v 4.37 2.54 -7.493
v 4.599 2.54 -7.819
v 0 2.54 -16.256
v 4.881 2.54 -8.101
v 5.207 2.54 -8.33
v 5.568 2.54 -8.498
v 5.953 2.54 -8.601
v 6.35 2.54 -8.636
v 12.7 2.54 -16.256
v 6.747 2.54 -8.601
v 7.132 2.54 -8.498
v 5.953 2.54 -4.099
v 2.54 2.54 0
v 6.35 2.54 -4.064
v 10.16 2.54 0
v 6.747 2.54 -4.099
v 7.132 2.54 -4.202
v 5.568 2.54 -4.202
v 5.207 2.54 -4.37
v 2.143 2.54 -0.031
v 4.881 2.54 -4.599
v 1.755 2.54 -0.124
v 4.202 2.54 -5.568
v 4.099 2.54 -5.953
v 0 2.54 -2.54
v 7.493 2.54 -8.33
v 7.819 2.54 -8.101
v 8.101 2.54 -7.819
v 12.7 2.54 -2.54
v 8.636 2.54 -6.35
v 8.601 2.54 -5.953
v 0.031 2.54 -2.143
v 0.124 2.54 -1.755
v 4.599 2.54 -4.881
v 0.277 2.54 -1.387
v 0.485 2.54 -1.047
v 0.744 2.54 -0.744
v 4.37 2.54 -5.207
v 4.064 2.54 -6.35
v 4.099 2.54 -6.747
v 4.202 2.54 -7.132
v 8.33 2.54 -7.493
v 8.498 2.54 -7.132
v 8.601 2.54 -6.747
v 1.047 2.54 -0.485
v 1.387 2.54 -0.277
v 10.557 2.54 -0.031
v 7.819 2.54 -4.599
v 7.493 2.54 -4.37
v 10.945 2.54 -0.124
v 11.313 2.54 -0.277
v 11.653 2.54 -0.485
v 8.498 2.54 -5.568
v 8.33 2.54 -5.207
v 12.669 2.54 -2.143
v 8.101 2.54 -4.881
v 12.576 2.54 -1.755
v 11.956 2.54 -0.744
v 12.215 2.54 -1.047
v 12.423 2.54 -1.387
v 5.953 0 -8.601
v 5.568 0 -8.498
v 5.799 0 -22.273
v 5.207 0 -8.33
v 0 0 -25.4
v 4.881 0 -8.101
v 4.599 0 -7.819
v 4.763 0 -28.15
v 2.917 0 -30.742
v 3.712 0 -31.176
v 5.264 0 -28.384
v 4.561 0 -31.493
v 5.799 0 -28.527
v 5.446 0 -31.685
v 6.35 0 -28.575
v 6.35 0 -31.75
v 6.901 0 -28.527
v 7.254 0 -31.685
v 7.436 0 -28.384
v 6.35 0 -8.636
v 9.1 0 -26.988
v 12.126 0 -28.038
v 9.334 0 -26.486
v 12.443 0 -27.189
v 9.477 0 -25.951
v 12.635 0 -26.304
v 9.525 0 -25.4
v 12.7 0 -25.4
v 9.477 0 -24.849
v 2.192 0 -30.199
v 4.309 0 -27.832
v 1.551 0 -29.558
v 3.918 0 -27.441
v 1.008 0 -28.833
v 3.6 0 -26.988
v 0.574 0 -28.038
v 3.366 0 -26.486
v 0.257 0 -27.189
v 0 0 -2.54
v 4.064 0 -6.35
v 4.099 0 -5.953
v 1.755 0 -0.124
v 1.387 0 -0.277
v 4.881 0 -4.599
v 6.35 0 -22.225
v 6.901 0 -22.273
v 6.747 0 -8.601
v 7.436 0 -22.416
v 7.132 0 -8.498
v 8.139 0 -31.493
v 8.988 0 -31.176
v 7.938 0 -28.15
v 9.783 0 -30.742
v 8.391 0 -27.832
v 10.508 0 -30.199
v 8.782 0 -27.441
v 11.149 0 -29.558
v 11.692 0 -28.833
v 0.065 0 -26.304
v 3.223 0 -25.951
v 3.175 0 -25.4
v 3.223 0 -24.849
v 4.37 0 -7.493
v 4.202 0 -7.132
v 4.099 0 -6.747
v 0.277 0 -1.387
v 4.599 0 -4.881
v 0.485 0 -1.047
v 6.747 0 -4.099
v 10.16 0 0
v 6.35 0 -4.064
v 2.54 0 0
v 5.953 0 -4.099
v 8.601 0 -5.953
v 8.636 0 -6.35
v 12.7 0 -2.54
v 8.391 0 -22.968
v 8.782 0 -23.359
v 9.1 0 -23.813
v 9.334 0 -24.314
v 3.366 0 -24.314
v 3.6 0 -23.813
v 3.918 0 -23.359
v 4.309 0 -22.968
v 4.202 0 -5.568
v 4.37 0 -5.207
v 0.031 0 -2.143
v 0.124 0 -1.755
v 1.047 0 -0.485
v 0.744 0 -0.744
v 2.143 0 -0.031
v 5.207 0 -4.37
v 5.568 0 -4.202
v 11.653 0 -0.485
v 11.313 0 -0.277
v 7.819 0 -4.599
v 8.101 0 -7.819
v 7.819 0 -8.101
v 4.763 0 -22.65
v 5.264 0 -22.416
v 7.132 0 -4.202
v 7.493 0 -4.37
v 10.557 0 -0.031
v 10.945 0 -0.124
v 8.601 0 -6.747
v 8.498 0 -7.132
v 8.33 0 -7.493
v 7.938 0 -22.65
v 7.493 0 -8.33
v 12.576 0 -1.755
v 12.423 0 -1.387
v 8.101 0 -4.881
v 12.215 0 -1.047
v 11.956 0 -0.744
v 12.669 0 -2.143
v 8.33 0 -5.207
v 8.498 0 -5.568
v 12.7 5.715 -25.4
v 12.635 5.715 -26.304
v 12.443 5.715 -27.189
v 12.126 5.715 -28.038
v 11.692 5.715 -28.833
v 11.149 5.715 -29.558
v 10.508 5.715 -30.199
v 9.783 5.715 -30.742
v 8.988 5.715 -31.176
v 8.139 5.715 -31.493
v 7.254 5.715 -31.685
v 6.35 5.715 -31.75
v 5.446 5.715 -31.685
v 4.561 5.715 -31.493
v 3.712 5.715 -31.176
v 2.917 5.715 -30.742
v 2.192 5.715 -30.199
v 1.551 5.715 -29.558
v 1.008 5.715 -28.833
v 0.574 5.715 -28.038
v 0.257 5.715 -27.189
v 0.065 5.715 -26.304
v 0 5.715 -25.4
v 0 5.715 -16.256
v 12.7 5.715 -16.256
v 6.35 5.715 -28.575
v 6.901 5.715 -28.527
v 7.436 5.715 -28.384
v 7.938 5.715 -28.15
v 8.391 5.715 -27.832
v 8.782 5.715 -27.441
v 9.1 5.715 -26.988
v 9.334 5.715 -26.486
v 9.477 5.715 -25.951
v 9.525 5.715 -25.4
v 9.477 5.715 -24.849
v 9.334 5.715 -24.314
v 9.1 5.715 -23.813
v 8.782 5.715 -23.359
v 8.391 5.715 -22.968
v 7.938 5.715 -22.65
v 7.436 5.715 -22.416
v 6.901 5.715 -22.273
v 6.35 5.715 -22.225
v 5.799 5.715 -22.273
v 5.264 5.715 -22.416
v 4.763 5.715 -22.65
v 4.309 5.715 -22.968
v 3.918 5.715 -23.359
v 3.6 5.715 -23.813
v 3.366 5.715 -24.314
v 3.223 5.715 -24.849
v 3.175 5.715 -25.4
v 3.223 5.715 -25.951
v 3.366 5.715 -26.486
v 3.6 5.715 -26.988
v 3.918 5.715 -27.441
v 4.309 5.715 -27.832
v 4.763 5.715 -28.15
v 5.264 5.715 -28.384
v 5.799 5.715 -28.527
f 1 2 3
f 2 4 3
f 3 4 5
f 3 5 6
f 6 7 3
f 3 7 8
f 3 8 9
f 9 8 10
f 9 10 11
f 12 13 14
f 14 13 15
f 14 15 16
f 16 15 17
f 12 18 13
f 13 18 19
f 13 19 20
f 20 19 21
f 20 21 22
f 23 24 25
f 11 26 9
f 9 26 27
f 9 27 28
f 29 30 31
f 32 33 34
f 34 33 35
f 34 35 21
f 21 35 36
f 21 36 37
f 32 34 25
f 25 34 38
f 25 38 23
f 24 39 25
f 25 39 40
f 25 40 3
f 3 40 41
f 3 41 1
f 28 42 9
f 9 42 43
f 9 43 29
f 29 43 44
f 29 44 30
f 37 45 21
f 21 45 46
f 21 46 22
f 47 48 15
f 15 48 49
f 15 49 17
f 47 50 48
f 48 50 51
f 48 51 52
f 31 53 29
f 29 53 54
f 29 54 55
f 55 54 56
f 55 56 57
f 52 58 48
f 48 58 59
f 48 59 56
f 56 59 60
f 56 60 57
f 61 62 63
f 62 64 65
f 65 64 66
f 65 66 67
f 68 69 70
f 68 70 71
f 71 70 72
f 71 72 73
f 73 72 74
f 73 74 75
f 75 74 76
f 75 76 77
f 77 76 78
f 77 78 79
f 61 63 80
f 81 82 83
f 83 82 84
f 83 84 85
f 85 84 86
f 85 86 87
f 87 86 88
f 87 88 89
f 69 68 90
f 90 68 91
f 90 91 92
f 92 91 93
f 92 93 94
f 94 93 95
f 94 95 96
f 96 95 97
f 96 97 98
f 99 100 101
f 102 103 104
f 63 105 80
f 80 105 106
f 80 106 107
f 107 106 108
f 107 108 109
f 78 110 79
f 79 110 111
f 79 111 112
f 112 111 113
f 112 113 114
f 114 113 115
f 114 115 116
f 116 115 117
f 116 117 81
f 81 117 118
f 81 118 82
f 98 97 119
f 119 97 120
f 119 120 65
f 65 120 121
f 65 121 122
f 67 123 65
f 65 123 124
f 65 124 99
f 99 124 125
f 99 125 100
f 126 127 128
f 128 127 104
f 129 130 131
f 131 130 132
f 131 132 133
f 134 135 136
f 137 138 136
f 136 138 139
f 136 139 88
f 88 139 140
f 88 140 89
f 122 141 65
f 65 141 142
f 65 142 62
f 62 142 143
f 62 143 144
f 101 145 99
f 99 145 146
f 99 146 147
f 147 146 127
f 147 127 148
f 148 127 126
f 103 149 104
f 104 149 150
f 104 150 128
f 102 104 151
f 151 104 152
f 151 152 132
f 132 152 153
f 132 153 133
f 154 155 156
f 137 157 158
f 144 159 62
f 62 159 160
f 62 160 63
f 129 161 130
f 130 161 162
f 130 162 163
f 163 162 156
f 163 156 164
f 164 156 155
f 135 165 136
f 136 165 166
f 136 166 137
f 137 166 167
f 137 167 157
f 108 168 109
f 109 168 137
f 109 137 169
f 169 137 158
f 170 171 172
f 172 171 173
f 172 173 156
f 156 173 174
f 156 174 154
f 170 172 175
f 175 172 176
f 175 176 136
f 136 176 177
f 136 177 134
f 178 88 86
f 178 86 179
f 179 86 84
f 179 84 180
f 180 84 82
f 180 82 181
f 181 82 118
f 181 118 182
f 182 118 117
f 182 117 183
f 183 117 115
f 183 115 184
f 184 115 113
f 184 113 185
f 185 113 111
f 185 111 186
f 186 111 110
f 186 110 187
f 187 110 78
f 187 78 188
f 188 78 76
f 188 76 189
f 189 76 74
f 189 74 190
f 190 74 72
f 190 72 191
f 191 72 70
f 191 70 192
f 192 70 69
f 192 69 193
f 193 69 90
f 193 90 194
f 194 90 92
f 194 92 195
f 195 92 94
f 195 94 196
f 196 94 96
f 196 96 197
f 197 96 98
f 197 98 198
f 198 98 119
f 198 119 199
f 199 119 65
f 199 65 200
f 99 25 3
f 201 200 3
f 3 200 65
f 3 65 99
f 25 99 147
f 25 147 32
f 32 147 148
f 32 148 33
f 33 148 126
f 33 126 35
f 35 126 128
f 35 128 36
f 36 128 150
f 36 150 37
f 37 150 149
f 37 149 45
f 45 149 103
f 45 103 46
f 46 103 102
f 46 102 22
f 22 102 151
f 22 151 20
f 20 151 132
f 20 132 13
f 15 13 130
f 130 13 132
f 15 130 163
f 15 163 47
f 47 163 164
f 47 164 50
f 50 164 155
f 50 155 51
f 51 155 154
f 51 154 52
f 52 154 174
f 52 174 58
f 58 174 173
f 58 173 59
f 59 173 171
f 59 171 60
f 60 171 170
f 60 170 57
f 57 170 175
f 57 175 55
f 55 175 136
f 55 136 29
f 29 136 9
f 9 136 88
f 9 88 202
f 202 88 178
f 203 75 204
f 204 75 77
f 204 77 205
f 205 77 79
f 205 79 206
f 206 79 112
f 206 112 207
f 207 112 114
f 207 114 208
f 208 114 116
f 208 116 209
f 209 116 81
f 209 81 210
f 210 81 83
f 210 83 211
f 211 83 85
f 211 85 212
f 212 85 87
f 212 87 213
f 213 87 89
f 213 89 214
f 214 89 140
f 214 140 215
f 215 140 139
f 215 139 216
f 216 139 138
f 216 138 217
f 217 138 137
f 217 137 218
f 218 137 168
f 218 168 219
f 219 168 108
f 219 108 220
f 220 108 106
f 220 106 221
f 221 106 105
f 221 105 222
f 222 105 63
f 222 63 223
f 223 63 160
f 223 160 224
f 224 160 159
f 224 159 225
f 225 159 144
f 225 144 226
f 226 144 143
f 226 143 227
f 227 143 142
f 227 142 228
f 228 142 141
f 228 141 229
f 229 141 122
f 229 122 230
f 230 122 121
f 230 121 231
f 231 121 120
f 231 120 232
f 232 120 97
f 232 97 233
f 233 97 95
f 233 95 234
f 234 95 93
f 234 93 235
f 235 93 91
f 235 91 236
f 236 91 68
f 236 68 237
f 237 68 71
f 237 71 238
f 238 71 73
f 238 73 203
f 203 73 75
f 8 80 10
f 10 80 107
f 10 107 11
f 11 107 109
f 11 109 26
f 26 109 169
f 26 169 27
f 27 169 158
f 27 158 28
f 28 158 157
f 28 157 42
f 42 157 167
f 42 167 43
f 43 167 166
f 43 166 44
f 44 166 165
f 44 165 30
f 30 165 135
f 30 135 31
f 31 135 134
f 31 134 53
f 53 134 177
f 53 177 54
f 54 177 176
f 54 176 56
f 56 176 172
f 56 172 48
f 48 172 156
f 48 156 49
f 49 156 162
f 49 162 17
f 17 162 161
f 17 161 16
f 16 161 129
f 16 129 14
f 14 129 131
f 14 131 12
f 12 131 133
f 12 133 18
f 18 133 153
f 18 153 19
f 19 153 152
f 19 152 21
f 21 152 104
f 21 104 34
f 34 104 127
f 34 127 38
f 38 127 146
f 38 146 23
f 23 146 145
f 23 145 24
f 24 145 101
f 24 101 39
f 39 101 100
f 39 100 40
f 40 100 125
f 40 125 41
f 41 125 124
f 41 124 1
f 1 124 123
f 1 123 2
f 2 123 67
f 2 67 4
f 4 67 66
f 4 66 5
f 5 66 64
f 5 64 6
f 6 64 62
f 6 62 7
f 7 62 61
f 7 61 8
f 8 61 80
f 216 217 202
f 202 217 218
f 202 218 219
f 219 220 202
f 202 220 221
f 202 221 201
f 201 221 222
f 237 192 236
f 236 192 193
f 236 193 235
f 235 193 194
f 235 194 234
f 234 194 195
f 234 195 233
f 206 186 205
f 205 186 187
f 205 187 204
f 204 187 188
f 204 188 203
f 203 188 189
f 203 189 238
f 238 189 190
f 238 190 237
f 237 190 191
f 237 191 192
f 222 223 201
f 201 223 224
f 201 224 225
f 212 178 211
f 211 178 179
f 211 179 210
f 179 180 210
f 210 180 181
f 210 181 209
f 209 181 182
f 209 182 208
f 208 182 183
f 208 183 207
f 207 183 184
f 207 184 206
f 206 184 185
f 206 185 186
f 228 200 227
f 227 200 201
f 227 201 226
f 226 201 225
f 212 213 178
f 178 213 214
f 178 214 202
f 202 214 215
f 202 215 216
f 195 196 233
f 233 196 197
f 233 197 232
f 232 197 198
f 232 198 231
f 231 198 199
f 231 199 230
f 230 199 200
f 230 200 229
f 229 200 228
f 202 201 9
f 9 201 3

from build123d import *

# Parameters (mm, degrees)
SKETCH1_R           = 3.175
SKETCH1_R_2         = 2.286
BOSS_EXTRUDE1_DEPTH = 2.54
SKETCH2_R           = 3.175
BOSS_EXTRUDE2_DEPTH = 3.175


with BuildPart() as part:
    # Sketch1 → Boss-Extrude1 (new body)
    with BuildSketch(Plane(origin=(0, 0, 0), x_dir=(1, 0, 0), z_dir=(0, 1, 0))):
        with BuildLine():
            Line((2.54, 0), (10.16, 0))
            ThreePointArc((10.16, 0), (11.956051224, 0.743948776), (12.7, 2.54))
            Line((12.7, 2.54), (12.7, 25.4))
            ThreePointArc((12.7, 25.4), (6.35, 31.75), (0, 25.4))
            Line((0, 25.4), (0, 2.54))
            ThreePointArc((0, 2.54), (0.743948776, 0.743948776), (2.54, 0))
        make_face()
        with Locations((6.35, 25.4)):
            Circle(SKETCH1_R, mode=Mode.SUBTRACT)
        with Locations((6.35, 6.35)):
            Circle(SKETCH1_R_2, mode=Mode.SUBTRACT)
    extrude(amount=BOSS_EXTRUDE1_DEPTH)

    # Sketch2 → Boss-Extrude2 (add)
    with BuildSketch(Plane(origin=(0, 2.54, 0), x_dir=(1, 0, 0), z_dir=(0, 1, 0))):
        with BuildLine():
            Line((0, 25.4), (0, 16.256))
            Line((0, 16.256), (12.7, 16.256))
            Line((12.7, 16.256), (12.7, 25.4))
            ThreePointArc((12.7, 25.4), (6.35, 31.75), (0, 25.4))
        make_face()
        with Locations((6.35, 25.4)):
            Circle(SKETCH2_R, mode=Mode.SUBTRACT)
    extrude(amount=BOSS_EXTRUDE2_DEPTH)


solid = part.part
